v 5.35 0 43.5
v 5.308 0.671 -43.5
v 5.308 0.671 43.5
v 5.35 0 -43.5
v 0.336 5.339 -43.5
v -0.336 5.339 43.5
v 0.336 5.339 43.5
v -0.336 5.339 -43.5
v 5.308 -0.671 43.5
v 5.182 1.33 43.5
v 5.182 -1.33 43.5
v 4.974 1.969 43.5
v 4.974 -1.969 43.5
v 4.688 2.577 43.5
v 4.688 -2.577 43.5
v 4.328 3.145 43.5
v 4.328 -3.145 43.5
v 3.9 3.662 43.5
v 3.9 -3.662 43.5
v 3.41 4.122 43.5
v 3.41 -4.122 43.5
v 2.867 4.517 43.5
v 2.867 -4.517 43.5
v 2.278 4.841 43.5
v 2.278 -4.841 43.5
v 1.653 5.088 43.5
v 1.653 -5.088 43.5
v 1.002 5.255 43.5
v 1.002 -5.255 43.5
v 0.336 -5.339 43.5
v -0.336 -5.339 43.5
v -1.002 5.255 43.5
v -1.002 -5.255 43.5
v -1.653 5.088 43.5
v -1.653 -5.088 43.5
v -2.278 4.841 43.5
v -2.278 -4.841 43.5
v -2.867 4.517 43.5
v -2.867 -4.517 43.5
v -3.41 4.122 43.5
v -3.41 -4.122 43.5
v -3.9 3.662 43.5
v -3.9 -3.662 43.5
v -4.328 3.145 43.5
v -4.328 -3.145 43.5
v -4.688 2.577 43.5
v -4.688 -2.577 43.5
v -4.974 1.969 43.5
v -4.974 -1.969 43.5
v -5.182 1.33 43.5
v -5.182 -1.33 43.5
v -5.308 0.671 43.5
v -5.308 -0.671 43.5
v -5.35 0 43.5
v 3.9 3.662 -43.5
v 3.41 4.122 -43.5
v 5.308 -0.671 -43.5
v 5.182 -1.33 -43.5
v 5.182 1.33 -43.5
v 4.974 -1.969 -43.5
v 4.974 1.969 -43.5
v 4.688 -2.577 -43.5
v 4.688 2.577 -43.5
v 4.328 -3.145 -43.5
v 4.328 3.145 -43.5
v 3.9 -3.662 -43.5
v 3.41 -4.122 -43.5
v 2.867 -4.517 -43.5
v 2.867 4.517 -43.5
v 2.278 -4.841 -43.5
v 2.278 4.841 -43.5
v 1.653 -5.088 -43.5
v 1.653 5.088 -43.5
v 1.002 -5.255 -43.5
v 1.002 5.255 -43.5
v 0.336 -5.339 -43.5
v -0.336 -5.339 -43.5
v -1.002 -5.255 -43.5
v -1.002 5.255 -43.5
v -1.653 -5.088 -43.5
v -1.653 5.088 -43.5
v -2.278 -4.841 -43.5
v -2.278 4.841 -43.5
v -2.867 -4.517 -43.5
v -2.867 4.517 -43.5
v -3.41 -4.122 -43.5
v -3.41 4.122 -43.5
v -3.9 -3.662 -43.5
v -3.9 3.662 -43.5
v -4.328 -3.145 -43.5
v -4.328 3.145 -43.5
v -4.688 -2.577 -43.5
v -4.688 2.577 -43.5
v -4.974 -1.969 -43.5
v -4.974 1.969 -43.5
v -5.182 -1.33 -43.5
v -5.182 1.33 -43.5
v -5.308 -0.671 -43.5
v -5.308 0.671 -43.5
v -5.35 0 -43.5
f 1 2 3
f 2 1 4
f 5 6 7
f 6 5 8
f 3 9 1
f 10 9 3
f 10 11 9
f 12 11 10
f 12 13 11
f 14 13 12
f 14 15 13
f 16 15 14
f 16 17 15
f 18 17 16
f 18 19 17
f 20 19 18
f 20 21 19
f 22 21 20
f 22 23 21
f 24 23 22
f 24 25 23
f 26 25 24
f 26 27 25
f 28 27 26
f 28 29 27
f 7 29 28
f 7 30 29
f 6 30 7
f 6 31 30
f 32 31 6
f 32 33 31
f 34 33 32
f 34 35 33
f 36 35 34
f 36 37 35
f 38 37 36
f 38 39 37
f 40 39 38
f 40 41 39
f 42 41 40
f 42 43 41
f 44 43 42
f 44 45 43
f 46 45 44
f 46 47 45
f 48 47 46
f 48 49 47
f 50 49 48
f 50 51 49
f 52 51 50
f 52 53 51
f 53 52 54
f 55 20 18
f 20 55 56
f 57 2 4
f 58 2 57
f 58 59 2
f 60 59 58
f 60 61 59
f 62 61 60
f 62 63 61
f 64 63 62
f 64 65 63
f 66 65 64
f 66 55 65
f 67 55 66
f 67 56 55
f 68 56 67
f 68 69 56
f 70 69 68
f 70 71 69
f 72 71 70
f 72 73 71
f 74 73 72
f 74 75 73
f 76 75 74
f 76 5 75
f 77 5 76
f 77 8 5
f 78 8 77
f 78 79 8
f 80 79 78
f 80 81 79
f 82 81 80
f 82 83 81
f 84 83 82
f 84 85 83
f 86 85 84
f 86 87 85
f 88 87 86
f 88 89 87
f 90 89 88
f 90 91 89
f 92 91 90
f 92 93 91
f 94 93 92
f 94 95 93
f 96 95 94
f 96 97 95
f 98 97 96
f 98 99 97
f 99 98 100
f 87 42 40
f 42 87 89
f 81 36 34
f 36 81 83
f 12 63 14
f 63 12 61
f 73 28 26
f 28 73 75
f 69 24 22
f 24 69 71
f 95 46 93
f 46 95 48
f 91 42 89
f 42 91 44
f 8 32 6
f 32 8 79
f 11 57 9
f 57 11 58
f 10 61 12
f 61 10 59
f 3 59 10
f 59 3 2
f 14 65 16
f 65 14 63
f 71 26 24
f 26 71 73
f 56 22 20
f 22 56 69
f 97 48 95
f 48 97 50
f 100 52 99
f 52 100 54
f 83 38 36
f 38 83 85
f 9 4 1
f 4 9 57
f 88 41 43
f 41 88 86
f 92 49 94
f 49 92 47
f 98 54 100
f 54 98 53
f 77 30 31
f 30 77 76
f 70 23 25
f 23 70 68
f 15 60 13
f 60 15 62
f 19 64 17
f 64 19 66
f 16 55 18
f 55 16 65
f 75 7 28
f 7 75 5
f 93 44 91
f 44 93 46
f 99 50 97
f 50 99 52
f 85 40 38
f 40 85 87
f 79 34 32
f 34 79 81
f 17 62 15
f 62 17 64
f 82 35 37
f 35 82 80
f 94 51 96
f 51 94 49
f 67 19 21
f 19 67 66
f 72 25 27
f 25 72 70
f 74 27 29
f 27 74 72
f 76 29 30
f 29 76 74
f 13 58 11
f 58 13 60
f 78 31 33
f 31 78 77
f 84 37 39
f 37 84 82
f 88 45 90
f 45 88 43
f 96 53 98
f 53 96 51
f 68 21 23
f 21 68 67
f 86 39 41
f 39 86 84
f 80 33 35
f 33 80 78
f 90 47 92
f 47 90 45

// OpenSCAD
$fn = 50;


difference() {
	union() {
		translate(v = [0, 0, -43.5000000000]) {
			cylinder(h = 87, r = 5.3500000000);
		}
	}
	union() {
		translate(v = [0, 0, -100.0000000000]) {
			cylinder(h = 200, r = 0);
		}
	}
}
